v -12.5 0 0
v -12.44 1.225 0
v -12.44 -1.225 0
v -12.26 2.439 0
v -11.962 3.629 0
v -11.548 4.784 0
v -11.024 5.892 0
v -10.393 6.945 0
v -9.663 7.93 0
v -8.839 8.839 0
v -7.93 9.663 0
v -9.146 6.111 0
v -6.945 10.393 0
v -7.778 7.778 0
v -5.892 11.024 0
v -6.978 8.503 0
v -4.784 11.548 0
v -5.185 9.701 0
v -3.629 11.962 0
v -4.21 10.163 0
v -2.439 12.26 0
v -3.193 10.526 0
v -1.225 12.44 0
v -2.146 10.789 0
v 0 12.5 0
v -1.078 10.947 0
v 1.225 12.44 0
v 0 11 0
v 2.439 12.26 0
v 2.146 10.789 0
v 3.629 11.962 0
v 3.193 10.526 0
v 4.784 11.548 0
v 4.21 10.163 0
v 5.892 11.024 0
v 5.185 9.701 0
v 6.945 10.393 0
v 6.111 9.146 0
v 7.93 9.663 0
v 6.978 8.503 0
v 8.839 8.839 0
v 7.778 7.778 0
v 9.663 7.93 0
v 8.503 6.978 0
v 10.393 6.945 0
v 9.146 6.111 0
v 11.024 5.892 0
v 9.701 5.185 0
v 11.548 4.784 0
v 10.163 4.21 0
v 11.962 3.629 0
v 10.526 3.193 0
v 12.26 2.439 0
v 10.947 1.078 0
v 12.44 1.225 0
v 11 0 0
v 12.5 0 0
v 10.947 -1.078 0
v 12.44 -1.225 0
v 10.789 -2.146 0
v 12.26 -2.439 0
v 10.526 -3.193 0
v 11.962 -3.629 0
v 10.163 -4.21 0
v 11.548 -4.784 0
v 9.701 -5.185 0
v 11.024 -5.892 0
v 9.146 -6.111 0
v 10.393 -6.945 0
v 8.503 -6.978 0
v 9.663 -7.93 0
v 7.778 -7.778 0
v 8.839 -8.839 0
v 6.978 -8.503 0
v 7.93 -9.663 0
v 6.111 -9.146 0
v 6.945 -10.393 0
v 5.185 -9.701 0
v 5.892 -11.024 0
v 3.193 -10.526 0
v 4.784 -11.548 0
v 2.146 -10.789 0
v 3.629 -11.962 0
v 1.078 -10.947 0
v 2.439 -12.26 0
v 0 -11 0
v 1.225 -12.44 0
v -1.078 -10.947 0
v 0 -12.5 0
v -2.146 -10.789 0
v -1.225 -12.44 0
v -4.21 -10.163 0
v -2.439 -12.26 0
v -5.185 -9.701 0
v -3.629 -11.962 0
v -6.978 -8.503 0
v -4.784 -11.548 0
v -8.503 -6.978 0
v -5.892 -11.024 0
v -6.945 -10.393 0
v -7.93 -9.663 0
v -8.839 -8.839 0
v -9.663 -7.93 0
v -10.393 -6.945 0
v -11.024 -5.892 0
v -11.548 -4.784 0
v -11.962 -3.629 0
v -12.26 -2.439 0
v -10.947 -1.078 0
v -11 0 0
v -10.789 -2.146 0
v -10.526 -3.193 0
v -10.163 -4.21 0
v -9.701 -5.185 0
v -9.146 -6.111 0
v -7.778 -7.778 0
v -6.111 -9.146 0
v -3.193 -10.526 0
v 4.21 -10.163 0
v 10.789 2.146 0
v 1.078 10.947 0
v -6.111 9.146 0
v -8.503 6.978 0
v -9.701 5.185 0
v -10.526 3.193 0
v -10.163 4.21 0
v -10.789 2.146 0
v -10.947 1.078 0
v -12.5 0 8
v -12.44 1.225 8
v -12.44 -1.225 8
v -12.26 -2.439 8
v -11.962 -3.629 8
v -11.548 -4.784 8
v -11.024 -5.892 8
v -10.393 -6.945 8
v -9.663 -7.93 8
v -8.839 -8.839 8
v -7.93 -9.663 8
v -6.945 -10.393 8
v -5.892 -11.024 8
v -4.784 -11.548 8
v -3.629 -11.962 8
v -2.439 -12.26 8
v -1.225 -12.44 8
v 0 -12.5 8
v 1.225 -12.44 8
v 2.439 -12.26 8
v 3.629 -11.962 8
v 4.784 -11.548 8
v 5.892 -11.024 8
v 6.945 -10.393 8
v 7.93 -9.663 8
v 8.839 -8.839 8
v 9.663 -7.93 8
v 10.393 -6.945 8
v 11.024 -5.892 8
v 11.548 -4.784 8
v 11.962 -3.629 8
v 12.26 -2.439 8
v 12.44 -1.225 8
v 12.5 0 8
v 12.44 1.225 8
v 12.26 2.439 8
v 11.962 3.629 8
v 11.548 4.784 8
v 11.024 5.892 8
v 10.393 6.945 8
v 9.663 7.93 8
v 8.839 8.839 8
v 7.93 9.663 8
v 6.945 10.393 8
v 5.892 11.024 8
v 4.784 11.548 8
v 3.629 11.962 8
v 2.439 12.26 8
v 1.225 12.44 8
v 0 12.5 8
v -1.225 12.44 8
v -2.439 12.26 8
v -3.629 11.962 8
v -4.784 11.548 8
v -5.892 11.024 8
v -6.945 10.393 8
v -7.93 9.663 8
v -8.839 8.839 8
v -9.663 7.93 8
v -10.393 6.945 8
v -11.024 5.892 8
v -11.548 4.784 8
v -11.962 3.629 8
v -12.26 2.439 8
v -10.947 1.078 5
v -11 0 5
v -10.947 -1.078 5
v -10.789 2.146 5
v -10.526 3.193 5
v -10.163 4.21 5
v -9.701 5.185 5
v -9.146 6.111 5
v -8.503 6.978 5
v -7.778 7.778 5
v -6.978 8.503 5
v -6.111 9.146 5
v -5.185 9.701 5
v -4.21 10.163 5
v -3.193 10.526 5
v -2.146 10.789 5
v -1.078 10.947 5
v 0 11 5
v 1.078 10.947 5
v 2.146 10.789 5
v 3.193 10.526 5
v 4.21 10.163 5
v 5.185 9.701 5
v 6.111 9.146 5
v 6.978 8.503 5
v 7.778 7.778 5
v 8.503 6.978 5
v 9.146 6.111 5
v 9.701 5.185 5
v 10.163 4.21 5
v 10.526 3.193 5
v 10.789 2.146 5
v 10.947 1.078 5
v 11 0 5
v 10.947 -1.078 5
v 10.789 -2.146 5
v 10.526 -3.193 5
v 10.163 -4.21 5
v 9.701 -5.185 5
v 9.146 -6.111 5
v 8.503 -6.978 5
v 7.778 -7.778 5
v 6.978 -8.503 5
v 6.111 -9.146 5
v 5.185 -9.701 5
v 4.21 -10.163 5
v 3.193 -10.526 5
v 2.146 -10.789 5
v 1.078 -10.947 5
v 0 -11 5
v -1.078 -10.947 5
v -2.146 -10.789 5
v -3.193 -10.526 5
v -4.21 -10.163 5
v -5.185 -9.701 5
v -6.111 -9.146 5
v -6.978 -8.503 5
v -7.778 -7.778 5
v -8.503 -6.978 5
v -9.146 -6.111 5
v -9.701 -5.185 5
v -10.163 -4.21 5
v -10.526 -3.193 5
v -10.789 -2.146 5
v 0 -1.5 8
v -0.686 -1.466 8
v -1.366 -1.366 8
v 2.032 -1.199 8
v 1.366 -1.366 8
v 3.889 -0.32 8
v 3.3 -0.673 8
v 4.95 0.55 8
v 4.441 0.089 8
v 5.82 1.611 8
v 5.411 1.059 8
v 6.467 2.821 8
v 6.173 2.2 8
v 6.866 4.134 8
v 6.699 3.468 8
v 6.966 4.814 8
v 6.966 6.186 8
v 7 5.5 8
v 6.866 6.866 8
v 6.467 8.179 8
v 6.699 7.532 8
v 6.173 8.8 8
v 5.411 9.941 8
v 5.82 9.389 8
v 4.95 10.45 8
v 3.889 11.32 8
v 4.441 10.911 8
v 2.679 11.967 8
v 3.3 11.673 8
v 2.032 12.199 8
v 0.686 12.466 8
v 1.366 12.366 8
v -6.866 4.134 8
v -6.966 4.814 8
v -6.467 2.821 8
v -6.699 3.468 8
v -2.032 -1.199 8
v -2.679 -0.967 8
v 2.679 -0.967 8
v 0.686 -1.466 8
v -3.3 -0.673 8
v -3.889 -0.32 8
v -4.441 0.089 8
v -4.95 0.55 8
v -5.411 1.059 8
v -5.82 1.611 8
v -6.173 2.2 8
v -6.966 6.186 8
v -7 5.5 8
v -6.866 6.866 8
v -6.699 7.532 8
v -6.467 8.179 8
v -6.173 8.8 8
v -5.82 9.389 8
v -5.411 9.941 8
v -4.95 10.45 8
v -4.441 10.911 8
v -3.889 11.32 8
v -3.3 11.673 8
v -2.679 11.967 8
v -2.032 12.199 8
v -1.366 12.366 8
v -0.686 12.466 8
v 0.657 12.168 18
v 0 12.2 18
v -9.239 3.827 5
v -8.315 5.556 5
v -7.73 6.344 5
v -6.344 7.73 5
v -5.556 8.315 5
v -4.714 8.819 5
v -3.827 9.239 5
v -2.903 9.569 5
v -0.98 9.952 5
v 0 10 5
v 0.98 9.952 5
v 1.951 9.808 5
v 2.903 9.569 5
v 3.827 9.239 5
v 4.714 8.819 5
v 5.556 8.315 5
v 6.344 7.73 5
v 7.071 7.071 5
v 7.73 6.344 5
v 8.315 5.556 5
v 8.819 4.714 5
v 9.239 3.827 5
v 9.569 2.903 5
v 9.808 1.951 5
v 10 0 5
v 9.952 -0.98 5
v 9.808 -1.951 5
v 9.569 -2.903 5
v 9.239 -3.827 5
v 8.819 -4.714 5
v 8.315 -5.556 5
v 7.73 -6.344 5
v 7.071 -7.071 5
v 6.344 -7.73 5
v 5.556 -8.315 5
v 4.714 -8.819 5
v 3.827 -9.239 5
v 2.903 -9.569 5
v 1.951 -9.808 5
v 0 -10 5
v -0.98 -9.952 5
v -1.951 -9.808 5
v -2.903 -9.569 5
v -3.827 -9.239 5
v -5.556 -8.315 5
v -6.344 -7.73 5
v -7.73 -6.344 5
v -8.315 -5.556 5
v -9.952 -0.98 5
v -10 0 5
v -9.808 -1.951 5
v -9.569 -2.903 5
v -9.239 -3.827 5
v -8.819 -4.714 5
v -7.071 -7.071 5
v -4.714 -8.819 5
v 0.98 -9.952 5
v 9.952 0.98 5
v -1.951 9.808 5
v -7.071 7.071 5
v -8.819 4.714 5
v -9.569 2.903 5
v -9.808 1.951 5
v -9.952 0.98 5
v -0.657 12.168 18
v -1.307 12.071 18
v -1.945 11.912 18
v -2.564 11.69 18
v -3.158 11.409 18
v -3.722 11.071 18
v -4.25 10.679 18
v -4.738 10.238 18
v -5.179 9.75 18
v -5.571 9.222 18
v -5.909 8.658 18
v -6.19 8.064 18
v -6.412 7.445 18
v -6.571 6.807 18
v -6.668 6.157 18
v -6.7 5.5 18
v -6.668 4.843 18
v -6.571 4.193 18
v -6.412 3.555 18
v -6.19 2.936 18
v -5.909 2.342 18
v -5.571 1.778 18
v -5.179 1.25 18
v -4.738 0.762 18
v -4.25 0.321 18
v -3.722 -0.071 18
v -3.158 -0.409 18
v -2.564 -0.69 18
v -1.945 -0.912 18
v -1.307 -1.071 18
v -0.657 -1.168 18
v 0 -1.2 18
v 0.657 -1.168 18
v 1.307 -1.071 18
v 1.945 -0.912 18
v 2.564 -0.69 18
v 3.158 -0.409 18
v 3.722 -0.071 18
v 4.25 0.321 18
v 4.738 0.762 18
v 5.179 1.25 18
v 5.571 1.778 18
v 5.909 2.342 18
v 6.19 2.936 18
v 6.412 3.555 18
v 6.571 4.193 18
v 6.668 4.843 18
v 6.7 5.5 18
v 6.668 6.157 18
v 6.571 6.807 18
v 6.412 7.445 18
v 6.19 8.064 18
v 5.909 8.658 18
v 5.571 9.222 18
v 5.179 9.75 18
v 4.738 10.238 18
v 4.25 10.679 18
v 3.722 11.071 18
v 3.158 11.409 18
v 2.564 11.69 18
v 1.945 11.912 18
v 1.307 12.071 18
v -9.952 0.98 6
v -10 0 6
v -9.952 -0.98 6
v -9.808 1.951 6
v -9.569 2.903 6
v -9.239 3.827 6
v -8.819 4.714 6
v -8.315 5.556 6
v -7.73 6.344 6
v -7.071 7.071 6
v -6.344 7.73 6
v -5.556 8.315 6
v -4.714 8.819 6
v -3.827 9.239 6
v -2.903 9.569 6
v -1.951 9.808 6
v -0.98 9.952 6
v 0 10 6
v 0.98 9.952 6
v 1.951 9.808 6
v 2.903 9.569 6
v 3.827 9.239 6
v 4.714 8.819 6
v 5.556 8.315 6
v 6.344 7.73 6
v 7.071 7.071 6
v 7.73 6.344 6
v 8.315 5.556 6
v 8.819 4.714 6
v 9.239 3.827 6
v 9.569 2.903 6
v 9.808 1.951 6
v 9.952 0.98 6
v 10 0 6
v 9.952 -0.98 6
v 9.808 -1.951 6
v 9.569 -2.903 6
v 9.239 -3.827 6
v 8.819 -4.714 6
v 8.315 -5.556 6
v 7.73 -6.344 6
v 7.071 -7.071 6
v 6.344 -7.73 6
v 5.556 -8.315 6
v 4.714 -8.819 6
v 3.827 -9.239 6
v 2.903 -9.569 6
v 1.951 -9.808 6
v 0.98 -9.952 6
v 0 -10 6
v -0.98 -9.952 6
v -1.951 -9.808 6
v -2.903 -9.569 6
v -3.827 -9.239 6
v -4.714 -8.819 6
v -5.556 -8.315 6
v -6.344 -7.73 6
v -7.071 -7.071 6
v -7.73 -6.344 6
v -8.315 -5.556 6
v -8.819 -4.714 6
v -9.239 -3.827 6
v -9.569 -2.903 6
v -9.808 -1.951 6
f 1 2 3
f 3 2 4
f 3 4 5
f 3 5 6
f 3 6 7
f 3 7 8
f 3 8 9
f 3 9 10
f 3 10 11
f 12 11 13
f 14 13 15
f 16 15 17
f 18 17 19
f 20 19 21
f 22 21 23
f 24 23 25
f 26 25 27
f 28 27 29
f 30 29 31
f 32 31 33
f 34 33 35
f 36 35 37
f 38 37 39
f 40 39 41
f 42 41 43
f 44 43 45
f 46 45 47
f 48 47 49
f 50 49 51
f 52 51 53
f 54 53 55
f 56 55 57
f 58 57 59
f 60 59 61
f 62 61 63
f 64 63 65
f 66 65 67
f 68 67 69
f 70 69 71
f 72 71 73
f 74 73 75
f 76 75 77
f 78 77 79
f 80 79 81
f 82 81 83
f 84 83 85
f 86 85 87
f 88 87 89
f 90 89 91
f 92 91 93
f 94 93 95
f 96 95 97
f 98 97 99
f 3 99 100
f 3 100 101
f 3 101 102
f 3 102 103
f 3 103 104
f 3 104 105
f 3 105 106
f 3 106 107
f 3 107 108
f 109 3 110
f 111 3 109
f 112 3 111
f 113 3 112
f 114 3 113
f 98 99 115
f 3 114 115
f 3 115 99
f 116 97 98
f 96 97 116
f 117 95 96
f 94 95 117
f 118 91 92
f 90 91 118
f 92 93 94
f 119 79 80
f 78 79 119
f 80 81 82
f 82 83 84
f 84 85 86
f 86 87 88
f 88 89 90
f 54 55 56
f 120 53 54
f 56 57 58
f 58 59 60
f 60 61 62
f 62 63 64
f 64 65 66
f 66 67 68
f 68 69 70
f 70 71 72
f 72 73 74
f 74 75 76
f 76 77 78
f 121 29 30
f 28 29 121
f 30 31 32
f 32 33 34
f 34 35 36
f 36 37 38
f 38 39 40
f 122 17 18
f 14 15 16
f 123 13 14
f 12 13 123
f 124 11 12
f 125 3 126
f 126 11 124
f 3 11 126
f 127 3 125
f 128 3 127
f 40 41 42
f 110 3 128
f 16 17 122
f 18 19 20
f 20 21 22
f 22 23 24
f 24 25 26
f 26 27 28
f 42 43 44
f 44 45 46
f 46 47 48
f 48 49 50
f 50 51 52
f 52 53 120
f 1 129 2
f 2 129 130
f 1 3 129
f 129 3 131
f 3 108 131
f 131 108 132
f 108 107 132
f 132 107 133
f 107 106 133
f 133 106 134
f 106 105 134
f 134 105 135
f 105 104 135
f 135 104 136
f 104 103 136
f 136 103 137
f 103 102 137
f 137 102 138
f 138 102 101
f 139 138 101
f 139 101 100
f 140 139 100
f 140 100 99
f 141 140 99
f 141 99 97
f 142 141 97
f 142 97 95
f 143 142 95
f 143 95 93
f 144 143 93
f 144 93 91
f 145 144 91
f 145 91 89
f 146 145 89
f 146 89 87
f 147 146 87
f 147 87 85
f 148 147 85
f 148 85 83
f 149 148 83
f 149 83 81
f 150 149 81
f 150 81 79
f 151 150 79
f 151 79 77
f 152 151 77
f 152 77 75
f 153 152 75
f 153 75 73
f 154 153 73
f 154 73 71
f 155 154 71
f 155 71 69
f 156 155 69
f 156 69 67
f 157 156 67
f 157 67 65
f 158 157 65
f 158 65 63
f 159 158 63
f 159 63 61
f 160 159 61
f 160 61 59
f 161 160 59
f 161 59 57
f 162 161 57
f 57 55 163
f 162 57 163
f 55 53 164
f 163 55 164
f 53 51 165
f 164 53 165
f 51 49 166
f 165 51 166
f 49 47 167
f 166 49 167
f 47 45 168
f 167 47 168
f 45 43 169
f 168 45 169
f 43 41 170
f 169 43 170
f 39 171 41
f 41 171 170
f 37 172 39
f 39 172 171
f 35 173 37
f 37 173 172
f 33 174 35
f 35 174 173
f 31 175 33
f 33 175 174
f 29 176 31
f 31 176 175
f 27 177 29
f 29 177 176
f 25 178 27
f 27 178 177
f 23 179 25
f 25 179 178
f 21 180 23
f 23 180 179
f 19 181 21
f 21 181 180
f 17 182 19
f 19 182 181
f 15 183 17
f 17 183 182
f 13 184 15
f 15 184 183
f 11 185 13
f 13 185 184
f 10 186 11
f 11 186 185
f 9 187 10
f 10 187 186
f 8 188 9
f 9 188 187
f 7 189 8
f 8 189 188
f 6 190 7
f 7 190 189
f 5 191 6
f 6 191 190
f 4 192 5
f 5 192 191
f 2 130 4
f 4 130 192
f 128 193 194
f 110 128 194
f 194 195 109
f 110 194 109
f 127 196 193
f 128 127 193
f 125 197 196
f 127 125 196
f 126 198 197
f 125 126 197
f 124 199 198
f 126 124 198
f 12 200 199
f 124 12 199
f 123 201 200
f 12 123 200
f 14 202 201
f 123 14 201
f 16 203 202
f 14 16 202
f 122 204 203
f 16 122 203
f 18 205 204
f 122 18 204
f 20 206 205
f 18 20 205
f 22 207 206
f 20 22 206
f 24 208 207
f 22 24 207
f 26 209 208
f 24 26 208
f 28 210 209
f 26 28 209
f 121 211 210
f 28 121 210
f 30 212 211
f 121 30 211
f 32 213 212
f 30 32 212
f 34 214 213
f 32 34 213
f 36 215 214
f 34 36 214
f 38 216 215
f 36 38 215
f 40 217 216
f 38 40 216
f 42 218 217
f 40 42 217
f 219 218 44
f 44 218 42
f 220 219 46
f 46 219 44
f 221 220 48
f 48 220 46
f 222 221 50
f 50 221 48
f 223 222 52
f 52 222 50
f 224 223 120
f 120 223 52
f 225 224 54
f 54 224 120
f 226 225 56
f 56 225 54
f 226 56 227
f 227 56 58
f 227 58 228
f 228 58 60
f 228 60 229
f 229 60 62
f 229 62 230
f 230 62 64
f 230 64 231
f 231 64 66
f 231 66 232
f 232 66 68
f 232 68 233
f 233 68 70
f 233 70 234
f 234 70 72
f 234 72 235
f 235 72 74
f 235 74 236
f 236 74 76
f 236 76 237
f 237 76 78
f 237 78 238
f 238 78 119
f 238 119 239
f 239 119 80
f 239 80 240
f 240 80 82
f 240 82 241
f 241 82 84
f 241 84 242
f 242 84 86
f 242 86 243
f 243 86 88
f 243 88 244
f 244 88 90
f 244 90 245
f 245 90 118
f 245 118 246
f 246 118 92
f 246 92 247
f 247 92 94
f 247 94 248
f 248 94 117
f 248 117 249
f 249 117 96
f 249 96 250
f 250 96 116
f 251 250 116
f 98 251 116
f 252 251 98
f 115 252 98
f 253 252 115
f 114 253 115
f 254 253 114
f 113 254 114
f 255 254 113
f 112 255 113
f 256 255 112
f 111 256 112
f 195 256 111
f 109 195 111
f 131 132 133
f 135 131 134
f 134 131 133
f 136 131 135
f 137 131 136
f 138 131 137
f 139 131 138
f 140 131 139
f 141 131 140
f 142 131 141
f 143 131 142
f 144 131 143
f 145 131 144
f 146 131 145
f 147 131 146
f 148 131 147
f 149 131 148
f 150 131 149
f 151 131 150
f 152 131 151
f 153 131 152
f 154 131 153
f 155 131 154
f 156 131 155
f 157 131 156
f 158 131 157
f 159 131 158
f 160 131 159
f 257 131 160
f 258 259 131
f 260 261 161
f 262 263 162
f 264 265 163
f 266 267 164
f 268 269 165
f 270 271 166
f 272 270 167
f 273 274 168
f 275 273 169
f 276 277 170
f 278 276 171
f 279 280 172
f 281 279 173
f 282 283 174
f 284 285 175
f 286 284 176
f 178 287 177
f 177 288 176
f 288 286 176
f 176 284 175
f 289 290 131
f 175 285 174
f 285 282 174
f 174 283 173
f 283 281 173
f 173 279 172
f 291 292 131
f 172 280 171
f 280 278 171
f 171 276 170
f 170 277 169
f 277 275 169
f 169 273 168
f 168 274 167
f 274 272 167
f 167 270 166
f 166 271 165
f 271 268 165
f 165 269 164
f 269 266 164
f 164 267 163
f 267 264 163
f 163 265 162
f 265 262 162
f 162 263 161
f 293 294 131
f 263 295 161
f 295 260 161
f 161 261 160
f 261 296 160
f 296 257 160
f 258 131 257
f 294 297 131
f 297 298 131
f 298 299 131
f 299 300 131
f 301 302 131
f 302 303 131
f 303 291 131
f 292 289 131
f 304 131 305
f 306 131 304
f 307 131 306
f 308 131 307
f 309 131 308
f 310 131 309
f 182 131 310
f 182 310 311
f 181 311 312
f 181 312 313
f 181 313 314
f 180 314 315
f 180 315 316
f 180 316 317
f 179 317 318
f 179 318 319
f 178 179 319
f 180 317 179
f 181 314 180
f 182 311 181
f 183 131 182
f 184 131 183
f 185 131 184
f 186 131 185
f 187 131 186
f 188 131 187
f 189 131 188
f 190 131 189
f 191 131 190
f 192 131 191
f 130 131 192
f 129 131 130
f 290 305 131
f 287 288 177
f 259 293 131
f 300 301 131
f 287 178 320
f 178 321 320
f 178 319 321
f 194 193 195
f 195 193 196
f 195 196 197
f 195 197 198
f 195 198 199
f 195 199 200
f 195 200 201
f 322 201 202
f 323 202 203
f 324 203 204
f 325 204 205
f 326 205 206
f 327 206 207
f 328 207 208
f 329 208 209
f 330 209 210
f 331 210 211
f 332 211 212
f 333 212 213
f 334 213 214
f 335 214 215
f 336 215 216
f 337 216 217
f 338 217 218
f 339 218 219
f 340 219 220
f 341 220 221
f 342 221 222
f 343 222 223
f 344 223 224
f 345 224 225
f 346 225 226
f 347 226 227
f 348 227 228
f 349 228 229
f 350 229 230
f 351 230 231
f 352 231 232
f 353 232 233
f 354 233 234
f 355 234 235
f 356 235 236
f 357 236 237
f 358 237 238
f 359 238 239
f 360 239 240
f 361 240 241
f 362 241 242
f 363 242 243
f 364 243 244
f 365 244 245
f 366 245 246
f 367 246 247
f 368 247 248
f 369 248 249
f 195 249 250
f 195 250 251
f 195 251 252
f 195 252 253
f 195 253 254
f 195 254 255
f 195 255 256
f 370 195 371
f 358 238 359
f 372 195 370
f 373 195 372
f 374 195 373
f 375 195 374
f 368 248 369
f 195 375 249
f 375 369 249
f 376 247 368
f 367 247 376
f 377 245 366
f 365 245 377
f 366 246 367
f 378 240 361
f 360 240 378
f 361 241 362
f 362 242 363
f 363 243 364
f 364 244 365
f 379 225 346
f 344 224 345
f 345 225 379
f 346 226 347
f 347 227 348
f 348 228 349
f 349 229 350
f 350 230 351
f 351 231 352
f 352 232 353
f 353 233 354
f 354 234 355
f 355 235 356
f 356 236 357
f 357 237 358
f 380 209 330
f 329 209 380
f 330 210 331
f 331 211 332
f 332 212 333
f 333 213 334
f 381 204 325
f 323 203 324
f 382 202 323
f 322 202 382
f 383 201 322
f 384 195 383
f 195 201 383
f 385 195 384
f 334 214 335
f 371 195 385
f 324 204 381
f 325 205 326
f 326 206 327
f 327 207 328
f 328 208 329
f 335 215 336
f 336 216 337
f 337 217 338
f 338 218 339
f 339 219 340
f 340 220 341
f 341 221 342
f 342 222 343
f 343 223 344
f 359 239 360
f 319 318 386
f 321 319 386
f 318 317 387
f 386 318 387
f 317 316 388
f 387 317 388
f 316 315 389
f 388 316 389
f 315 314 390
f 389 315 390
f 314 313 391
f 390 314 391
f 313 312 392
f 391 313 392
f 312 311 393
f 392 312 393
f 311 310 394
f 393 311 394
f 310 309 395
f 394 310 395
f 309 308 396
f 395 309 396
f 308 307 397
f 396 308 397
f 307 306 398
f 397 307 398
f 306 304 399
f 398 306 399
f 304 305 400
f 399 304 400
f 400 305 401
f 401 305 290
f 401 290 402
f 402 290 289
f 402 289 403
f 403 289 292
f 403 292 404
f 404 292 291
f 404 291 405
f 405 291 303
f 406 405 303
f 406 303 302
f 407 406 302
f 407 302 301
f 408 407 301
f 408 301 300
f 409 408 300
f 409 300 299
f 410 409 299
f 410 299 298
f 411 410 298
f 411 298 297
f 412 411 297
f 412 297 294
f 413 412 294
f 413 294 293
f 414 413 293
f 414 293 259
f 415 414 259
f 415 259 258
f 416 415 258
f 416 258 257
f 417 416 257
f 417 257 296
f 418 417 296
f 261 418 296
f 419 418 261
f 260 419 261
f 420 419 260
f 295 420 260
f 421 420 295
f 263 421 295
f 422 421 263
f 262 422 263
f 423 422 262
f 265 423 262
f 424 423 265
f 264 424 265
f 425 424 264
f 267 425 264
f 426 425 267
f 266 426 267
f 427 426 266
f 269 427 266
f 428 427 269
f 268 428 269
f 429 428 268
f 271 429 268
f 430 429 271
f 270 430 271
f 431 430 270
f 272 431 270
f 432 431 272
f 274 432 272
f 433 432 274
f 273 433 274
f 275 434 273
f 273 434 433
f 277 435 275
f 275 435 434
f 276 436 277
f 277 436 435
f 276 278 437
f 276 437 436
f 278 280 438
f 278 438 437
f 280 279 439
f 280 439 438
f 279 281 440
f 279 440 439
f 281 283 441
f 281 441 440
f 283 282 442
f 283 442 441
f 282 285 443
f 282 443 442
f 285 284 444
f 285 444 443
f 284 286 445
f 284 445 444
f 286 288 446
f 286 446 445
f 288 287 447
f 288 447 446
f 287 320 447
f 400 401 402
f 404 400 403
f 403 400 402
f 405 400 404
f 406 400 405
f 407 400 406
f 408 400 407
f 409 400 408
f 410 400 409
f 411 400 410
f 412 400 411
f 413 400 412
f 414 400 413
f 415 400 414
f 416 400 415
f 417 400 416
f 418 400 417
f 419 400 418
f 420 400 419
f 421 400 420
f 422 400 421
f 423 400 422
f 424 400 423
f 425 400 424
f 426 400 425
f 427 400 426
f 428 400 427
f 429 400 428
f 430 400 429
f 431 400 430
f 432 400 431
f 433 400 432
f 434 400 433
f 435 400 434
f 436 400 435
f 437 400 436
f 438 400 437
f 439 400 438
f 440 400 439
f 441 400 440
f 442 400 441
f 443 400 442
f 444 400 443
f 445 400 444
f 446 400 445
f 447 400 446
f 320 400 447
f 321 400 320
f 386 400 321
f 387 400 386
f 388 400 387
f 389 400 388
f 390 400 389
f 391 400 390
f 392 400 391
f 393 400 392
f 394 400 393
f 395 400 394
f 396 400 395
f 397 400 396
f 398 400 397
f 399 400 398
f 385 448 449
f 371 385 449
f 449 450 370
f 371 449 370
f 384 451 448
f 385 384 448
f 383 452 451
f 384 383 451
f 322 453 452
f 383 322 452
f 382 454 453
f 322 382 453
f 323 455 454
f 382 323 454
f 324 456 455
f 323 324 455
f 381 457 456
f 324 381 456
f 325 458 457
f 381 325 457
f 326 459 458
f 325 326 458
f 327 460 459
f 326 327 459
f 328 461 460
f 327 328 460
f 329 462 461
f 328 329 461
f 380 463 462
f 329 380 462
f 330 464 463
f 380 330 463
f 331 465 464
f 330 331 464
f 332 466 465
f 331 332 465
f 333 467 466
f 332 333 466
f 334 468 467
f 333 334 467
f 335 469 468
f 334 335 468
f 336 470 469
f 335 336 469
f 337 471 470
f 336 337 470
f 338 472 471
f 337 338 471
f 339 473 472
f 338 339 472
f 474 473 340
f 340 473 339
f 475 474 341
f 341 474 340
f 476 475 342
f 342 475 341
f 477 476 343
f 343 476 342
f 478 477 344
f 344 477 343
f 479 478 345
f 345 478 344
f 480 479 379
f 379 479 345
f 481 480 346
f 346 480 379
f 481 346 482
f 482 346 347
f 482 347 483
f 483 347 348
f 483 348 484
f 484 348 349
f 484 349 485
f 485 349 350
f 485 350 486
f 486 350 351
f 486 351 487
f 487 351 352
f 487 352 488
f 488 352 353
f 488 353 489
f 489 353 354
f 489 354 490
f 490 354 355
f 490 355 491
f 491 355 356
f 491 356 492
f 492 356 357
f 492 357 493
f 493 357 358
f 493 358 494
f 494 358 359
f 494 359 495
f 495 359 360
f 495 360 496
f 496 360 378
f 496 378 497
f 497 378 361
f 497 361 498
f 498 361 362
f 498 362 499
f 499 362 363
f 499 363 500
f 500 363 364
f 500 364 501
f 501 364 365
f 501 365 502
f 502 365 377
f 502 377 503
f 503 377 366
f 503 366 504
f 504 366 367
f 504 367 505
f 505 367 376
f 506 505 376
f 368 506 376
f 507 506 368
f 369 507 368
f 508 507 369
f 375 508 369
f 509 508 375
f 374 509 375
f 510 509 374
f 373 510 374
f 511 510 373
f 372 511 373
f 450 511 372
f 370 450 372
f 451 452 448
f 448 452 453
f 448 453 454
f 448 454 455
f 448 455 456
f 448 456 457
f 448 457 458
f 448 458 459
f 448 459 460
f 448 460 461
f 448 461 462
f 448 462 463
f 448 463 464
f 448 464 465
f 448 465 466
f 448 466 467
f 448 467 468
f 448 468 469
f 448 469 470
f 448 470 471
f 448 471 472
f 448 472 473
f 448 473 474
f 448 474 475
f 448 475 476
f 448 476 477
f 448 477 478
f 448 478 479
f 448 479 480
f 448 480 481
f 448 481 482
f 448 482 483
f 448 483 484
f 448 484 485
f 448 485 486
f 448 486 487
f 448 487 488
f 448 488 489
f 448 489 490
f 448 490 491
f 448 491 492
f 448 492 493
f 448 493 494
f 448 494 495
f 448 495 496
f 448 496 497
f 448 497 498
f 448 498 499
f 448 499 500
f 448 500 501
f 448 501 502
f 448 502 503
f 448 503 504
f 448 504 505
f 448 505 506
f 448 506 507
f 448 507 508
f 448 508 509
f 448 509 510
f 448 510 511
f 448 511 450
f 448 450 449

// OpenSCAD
$fn = 64;
translate([0,5.5,8])cylinder(r1=7,r2=6.7,h=10);
difference(){
cylinder(r=25/2,h=8);
translate([0,0,-4])cylinder(r=22/2,h=10);

}
translate([0,0,5])
difference(){
cylinder(r=24/2,h=1);
translate([0,0,-4])cylinder(r=20/2,h=10);

}
